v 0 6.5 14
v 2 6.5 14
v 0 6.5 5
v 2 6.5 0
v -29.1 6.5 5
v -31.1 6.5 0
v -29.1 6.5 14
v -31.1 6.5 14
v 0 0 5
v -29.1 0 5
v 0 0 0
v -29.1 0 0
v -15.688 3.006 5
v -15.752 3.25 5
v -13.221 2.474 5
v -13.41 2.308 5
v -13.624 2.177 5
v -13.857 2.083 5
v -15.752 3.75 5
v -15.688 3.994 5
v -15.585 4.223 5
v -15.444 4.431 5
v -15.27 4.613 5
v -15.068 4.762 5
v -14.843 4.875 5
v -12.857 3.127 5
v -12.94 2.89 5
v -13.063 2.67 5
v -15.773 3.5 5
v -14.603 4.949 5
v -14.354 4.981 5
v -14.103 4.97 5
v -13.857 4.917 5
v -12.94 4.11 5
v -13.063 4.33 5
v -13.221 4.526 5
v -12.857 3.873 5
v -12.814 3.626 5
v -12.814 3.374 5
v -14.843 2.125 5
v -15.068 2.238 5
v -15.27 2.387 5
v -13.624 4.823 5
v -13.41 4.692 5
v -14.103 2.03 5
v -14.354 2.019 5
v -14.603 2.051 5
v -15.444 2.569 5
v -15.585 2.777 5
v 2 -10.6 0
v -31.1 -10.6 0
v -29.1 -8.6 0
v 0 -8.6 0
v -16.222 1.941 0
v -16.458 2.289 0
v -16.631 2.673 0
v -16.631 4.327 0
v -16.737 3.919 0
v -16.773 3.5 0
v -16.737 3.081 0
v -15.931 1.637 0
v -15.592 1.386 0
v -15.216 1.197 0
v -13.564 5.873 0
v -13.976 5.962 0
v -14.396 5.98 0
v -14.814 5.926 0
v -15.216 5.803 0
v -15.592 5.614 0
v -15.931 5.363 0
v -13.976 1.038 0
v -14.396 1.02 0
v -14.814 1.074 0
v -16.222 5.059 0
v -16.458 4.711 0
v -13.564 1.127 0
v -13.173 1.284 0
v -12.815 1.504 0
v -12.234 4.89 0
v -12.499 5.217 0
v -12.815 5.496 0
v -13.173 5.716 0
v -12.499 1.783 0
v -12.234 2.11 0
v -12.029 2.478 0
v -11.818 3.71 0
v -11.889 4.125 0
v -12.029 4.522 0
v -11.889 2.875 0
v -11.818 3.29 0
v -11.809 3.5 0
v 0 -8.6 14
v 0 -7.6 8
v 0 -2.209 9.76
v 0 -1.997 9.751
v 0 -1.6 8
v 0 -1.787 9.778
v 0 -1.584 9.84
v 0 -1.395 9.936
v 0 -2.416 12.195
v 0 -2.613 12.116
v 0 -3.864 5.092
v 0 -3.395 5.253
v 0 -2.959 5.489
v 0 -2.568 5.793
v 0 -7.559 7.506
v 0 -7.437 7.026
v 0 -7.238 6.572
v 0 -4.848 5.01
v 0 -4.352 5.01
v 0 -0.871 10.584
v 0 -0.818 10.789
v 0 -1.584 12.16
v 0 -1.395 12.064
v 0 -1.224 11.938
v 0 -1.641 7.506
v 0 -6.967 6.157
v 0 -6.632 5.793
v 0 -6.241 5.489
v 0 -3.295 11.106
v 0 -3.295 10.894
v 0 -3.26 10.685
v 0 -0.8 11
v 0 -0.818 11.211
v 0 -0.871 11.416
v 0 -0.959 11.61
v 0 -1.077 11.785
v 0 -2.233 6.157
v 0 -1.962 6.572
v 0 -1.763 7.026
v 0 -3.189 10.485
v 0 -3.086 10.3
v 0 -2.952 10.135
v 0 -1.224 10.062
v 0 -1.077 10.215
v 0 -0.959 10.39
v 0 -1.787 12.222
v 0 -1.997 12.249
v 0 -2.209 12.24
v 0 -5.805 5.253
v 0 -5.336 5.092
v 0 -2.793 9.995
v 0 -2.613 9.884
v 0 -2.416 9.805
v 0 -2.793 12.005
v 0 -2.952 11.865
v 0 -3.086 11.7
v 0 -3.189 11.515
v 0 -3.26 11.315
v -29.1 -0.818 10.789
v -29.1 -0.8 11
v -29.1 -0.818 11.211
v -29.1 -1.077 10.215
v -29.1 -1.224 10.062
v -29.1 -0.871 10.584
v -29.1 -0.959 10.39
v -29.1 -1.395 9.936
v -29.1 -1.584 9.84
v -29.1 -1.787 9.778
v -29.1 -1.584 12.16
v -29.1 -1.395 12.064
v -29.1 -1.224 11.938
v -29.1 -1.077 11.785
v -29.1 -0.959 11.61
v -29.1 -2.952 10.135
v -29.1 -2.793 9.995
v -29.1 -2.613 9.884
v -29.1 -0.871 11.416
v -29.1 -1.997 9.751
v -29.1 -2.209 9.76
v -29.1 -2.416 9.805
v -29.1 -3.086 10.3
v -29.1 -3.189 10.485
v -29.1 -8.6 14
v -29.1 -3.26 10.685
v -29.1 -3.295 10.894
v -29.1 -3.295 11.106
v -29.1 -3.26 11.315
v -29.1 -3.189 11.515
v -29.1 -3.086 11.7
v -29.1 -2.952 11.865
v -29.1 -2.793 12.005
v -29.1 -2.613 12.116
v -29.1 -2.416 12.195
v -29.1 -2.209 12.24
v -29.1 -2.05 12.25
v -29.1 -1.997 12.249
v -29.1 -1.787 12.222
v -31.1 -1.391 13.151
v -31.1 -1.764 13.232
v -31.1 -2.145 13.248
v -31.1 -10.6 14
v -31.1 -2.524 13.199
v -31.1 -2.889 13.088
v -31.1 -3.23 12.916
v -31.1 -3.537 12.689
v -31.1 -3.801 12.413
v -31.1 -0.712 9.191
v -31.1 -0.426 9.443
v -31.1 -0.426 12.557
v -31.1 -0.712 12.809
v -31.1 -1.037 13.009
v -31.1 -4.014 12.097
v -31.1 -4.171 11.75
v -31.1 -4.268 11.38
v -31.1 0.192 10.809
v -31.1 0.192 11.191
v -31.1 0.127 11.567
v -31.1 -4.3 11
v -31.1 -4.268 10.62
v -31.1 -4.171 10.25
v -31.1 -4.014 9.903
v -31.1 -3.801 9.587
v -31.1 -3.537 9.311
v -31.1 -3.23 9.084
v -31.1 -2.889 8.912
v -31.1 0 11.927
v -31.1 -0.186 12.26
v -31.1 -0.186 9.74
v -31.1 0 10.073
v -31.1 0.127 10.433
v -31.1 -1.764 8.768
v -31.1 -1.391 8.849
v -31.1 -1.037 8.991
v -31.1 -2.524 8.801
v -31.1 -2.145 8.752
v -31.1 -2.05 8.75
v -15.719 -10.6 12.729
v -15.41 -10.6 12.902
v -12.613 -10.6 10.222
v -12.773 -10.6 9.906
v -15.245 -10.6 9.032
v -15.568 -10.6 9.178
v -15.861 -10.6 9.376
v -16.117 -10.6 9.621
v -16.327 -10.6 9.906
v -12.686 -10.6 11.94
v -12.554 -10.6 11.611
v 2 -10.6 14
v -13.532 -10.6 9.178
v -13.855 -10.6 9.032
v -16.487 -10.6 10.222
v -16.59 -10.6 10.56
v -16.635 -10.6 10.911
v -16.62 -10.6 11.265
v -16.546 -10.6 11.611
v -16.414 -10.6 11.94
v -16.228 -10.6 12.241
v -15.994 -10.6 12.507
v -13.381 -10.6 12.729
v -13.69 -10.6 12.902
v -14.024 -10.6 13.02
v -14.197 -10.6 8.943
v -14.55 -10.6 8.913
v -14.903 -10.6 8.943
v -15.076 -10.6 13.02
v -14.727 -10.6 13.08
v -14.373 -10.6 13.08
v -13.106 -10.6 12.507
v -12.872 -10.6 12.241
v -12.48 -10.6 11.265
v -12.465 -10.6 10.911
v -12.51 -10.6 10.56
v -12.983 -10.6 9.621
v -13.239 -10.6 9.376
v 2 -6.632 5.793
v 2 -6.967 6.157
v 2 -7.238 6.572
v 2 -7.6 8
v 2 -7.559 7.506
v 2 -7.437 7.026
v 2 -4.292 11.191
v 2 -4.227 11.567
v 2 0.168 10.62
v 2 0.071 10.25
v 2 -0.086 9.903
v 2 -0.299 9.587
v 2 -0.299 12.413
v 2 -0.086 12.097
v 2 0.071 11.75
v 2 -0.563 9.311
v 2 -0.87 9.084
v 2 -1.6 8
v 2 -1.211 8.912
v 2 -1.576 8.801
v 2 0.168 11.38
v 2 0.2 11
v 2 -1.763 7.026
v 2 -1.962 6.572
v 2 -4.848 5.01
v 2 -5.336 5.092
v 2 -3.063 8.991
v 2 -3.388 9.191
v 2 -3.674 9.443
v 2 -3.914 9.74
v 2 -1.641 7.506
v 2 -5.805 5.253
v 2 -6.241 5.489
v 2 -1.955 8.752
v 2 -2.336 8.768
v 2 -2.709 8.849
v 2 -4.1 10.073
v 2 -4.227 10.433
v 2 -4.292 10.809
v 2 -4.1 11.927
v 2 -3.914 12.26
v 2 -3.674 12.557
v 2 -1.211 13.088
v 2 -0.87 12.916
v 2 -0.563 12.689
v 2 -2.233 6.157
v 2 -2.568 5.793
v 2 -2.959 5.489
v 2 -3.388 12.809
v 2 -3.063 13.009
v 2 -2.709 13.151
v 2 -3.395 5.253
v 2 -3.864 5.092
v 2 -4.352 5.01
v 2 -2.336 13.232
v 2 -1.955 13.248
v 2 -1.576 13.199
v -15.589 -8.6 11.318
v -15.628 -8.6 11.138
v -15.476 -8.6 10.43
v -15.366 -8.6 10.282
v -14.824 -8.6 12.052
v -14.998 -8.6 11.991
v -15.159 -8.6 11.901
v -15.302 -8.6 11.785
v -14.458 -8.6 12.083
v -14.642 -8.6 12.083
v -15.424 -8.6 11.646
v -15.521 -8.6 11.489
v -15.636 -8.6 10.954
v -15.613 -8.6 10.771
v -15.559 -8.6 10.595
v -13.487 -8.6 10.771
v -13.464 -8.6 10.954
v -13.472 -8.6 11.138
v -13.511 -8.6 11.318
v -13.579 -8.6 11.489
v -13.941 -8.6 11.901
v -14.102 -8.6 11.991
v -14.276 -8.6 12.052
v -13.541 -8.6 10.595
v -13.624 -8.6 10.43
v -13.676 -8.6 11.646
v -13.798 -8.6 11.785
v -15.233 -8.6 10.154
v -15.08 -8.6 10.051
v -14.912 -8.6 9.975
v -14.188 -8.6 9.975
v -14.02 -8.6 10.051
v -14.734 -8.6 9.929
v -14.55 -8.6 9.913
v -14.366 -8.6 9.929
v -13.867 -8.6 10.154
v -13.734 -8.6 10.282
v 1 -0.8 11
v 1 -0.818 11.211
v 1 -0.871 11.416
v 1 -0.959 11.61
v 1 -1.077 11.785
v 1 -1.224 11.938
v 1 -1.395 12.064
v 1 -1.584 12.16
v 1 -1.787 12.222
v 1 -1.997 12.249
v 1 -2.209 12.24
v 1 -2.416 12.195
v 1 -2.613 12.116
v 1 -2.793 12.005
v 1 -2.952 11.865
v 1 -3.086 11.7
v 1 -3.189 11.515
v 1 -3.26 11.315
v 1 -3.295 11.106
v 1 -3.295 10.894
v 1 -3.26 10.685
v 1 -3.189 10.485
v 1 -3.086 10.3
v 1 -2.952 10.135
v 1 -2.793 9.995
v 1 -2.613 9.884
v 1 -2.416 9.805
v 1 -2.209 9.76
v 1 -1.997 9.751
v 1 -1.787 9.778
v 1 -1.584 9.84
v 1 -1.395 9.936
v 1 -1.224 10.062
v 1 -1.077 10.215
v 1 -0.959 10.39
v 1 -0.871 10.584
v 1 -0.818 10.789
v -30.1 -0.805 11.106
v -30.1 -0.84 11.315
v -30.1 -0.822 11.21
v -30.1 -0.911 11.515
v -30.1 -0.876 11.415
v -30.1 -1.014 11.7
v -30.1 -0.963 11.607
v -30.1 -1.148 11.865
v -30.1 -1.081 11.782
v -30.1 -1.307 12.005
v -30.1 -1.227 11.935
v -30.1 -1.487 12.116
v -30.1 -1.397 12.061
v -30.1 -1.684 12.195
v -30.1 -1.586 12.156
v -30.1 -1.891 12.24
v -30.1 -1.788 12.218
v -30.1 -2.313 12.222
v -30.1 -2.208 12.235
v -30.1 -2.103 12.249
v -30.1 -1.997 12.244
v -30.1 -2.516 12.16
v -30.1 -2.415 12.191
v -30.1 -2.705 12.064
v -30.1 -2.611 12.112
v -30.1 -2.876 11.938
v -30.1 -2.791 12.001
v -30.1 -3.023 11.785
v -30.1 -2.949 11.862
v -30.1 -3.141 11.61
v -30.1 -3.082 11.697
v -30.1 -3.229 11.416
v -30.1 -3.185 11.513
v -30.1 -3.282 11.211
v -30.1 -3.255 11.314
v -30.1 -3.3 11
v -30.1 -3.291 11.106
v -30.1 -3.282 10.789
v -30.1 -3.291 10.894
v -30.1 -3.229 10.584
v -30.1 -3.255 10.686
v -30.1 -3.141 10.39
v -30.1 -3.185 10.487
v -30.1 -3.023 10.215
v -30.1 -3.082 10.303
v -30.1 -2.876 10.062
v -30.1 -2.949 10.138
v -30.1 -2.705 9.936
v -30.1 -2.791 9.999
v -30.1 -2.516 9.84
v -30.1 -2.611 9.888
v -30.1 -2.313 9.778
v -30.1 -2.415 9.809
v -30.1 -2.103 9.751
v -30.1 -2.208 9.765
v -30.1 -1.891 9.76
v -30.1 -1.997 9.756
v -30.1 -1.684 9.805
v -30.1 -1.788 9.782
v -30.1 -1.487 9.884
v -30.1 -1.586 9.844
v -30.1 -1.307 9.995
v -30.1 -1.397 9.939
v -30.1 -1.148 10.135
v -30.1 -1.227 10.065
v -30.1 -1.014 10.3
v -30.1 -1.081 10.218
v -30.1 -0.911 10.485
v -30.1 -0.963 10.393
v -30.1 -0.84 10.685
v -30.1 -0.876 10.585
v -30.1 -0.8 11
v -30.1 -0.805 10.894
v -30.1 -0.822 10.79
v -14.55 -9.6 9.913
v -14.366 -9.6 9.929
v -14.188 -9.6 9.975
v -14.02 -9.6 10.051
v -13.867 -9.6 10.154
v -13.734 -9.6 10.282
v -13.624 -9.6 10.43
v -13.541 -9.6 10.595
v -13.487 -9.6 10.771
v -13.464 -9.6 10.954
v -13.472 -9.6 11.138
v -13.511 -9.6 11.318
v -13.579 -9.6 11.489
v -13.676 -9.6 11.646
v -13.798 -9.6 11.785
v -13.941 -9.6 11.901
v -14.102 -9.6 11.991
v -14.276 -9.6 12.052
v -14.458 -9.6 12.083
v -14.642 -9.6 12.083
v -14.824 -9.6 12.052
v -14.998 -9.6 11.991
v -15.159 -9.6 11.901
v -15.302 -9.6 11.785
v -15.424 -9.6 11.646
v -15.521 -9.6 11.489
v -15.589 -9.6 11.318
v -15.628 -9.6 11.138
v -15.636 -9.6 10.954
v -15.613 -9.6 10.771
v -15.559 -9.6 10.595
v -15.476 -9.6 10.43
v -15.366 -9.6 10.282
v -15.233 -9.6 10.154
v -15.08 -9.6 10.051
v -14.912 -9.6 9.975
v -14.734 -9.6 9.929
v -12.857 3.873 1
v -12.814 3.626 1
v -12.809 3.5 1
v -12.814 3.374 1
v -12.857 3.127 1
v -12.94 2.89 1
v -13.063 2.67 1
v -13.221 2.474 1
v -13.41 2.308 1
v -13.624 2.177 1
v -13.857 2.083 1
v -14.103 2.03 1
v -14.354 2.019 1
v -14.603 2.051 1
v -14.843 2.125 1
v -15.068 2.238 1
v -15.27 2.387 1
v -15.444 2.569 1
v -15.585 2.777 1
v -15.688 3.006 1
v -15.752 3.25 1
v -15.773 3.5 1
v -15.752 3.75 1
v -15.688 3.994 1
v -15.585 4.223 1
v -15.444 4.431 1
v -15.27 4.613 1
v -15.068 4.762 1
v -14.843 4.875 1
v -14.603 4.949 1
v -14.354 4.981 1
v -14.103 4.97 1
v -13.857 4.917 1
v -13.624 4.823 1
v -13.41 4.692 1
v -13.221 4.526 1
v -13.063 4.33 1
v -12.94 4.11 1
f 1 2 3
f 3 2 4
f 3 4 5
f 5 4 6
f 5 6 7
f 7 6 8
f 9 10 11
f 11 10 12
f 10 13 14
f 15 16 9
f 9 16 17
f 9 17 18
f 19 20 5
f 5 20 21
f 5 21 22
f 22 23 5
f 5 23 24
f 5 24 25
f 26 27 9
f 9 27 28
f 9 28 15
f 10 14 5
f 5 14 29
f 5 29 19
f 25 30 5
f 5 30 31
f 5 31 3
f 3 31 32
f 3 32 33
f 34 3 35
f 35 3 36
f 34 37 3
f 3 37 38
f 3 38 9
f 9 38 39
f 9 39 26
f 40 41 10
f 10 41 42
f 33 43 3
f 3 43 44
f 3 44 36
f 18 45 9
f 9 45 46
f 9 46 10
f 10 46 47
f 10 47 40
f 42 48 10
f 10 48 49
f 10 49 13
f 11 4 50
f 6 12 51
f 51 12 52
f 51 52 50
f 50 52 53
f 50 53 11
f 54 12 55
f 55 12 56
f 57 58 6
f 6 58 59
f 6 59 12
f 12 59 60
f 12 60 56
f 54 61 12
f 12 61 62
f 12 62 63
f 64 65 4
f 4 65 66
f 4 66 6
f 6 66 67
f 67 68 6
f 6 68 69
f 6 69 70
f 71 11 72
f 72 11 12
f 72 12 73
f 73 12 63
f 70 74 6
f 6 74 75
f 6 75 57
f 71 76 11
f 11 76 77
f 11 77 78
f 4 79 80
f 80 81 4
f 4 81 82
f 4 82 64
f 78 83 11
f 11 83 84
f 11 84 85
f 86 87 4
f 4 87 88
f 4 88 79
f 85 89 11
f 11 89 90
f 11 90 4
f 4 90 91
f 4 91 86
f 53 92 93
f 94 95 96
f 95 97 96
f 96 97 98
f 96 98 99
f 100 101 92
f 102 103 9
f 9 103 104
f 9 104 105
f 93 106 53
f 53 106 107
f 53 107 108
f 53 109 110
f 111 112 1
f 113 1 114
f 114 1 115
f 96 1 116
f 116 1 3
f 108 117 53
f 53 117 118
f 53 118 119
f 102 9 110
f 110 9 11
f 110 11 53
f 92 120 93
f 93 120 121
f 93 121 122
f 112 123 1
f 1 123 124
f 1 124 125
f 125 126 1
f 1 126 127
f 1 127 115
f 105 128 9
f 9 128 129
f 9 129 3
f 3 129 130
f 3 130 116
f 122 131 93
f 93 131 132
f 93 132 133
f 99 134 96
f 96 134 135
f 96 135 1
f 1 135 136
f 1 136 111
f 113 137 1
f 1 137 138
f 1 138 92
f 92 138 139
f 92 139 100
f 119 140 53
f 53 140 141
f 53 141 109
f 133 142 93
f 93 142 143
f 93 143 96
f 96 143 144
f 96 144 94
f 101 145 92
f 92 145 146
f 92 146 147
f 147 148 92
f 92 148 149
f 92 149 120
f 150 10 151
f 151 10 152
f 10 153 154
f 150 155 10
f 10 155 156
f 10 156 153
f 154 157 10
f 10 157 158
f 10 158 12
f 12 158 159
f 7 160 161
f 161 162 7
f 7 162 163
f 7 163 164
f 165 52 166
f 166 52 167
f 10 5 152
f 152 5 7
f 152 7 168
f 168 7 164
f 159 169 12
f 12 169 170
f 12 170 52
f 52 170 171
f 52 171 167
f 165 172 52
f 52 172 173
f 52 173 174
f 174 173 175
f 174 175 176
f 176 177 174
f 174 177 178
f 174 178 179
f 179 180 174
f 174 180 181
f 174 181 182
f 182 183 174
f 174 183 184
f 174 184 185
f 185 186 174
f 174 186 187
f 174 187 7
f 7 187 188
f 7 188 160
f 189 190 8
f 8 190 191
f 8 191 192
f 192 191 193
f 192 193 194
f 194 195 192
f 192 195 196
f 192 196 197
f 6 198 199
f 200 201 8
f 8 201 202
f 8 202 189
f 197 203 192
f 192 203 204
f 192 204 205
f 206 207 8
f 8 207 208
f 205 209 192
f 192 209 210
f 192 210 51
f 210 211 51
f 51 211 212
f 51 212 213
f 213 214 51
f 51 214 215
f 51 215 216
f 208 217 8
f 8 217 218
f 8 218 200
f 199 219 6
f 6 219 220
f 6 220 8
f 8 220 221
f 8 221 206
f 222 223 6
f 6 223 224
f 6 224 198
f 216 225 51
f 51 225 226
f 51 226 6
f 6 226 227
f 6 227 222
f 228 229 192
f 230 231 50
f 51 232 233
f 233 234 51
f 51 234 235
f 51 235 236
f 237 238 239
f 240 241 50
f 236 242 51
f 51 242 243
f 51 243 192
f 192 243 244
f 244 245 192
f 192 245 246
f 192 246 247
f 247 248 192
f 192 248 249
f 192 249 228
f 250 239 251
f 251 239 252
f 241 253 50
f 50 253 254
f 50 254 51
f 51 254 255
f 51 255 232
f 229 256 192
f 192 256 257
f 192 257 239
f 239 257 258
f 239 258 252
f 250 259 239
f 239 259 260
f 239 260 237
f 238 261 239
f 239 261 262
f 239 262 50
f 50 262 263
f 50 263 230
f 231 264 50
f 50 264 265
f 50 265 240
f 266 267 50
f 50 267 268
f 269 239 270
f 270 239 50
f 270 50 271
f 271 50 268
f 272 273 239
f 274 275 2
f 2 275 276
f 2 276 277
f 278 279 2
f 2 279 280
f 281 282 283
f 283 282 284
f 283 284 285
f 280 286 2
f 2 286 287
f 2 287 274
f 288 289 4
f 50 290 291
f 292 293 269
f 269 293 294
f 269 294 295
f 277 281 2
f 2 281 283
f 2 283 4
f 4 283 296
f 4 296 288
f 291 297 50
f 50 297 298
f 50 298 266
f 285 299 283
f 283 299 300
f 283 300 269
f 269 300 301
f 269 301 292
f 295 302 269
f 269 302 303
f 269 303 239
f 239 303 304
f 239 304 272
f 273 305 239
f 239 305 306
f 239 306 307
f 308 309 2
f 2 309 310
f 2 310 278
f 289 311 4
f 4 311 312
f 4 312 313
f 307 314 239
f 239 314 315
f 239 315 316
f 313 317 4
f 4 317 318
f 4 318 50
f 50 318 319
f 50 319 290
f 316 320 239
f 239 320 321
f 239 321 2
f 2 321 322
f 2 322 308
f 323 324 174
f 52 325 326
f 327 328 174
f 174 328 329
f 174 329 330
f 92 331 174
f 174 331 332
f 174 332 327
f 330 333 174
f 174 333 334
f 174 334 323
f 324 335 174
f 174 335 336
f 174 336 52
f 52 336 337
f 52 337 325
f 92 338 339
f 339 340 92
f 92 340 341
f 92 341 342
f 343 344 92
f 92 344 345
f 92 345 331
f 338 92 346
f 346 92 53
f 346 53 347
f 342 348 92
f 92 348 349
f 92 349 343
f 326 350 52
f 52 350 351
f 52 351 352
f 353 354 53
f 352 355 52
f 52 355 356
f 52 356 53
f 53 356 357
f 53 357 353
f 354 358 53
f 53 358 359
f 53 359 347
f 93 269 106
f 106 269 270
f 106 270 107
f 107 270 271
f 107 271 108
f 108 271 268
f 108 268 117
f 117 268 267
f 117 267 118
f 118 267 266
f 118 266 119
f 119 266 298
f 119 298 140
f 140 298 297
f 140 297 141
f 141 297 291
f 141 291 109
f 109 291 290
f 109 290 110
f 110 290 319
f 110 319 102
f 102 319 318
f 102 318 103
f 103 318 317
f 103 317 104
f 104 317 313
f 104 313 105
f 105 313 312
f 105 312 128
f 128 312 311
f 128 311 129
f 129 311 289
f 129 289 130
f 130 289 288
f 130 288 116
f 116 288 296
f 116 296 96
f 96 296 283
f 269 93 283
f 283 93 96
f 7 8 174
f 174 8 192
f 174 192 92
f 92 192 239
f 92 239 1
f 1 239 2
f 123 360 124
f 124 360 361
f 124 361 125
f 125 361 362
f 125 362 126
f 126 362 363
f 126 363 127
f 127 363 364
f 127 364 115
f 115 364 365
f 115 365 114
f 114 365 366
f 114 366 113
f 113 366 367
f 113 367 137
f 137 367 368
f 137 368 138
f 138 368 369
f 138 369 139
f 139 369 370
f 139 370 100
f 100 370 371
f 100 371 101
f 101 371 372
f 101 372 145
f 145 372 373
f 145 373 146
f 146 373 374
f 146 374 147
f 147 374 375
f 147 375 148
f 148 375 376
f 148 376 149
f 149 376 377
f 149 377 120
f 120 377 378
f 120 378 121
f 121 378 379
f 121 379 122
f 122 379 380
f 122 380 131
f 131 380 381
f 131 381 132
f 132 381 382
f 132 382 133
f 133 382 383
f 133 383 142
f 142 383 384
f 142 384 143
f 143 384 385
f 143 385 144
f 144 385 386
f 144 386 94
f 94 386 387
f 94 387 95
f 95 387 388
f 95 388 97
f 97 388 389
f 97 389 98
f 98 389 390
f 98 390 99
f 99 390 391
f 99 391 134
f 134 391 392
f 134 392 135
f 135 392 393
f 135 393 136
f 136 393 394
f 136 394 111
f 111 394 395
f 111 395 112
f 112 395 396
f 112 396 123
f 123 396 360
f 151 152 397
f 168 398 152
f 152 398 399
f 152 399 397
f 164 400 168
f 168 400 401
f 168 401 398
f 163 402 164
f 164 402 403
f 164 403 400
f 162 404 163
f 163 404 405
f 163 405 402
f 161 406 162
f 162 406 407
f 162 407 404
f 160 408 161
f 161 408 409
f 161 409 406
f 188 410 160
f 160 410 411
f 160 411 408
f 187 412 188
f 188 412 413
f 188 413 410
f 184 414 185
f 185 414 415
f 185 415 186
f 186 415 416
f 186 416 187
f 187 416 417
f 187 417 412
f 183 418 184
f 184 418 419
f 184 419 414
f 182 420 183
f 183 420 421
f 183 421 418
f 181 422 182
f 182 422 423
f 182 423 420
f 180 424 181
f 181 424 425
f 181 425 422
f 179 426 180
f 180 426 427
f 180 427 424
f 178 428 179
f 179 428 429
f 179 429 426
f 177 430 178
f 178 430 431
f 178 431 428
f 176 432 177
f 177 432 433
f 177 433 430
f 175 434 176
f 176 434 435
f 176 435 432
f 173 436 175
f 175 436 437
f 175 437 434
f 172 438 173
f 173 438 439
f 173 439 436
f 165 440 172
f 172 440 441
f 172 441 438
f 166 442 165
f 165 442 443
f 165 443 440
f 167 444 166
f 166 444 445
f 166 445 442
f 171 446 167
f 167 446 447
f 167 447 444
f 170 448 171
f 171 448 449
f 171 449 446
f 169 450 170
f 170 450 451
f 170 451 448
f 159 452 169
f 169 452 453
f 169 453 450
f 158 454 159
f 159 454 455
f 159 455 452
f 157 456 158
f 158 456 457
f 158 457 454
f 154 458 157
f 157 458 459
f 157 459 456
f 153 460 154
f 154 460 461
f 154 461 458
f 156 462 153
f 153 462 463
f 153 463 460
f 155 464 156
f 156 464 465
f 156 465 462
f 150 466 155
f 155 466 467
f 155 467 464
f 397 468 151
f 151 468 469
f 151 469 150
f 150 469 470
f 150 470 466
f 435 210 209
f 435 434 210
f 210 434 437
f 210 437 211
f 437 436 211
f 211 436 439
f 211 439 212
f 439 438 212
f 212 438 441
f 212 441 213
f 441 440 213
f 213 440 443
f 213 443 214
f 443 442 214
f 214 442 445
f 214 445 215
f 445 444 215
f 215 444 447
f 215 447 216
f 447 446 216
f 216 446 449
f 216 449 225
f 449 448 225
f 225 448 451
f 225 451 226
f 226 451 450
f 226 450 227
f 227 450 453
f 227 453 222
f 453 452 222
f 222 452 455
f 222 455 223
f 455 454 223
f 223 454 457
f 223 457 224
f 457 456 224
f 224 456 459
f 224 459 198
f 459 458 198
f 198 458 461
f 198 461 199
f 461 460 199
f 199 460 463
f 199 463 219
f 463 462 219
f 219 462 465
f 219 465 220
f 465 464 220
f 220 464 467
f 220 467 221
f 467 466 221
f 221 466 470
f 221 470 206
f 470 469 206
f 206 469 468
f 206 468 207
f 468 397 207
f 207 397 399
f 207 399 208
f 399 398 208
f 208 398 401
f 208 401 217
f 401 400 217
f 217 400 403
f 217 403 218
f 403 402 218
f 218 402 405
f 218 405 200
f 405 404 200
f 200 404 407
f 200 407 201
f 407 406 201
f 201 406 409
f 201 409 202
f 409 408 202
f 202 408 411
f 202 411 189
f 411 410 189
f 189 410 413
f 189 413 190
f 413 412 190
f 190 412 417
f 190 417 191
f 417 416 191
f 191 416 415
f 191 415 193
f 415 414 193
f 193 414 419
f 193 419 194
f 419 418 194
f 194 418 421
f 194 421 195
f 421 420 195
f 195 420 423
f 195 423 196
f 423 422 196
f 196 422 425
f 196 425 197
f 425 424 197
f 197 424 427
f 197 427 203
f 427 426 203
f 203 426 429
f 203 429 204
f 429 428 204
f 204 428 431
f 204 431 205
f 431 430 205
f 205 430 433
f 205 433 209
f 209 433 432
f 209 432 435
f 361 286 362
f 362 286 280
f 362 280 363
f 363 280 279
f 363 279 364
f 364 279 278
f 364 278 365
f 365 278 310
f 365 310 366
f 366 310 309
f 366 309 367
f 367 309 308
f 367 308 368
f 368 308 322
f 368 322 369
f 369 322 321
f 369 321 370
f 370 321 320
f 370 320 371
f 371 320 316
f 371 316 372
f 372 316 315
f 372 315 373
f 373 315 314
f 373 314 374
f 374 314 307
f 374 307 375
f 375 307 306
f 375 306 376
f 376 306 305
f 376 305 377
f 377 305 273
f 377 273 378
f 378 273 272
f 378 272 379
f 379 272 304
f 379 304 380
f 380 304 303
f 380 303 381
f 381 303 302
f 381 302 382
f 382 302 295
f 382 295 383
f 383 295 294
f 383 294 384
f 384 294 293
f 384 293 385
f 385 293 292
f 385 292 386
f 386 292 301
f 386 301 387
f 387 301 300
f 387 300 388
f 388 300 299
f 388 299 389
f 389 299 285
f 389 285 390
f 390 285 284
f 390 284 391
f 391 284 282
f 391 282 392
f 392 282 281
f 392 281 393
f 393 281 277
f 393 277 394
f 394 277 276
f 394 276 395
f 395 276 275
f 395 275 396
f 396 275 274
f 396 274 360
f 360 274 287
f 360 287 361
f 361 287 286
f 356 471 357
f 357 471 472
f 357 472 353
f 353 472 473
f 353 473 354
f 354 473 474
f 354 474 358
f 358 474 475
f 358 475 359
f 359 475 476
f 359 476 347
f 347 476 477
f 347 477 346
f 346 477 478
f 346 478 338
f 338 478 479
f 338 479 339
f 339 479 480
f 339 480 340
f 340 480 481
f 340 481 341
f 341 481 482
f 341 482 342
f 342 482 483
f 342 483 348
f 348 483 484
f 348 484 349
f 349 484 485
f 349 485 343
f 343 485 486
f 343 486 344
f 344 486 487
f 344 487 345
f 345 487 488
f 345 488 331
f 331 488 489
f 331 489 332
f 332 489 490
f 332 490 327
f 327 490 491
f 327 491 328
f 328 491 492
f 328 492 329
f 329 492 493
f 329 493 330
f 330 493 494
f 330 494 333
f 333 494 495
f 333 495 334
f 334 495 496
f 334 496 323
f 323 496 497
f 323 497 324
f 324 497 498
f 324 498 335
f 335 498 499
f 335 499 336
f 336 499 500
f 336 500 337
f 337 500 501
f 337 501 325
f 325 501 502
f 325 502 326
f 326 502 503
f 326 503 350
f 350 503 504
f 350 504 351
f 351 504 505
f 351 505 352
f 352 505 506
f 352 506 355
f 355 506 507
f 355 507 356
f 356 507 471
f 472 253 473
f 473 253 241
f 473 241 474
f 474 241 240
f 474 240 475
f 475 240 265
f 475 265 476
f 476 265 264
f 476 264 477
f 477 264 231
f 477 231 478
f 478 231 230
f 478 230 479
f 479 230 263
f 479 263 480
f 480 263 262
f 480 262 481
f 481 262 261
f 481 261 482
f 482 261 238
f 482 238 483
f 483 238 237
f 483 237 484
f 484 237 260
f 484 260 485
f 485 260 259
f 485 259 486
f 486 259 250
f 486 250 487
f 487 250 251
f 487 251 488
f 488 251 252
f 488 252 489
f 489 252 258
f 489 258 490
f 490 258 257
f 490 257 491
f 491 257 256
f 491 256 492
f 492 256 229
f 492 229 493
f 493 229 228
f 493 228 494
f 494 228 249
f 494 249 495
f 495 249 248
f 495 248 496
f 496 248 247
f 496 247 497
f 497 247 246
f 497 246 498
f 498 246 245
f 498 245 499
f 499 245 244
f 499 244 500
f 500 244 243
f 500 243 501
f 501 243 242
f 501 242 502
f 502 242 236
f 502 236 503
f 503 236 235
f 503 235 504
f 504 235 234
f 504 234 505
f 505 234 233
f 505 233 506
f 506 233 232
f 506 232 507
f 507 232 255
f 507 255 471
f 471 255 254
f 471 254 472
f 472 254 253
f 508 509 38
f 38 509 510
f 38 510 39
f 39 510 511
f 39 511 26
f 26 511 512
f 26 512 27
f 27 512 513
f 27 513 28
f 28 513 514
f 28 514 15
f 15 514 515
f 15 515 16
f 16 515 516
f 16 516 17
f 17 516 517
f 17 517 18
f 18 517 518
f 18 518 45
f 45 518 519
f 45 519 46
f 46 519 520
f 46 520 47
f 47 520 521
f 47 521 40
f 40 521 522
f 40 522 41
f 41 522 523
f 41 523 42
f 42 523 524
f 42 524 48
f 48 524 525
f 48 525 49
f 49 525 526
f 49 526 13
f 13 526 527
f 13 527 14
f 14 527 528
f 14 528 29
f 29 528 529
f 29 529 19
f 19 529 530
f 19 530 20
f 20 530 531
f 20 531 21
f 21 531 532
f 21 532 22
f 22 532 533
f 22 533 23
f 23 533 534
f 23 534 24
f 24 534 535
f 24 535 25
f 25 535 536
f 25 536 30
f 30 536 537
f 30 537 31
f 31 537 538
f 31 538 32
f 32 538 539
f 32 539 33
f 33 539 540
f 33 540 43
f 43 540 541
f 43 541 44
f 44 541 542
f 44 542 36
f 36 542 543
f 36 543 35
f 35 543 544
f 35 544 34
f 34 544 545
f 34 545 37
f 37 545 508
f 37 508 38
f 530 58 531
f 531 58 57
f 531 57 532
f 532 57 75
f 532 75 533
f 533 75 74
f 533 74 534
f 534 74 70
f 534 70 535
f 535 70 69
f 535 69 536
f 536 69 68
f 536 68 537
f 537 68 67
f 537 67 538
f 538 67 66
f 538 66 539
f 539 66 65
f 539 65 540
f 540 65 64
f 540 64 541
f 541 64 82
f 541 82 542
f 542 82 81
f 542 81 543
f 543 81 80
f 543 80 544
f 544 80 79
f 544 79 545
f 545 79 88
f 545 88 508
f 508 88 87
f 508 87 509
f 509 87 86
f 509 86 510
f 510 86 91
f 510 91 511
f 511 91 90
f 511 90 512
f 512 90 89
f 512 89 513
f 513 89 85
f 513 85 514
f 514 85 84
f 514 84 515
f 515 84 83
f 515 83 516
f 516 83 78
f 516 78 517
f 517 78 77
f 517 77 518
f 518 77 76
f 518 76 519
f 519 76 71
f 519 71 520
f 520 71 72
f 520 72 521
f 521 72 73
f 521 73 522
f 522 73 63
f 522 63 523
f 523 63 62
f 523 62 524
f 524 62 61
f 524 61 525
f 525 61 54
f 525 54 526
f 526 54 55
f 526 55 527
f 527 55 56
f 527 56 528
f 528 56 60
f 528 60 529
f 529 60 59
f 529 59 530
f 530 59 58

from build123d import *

# Parameters (mm, degrees)
SKETCH_1_W             = 29.1
SKETCH_1_H             = 6.5
EXTRUDE_1_DEPTH        = 5
EXTRUDE_2_DEPTH        = 8
SKETCH_3_R             = 3
CUT_EXTRUDE_1118_DEPTH = 3
EXTRUDE_1407_DEPTH     = 6
SKETCH_5_R             = 1.25
CUT_EXTRUDE_2_DEPTH    = 38.469587668
CHAMFER_1_SIZE         = 1
SKETCH_6_R             = 1.087134162
CUT_EXTRUDE_3_DEPTH    = 5
CHAMFER_2_SIZE         = 1
SKETCH_7_R             = 1.482090692
CUT_EXTRUDE_4_DEPTH    = 5
CHAMFER_3_SIZE         = 1


with BuildPart() as part:
    # Эскиз1 → Бобышка-Вытянуть1 (new body)
    with BuildSketch(Plane.XY):
        with Locations((-14.55, 3.25)):
            Rectangle(SKETCH_1_W, SKETCH_1_H)
    extrude(amount=EXTRUDE_1_DEPTH)

    # Эскиз2 → Бобышка-Вытянуть2 (add)
    with BuildSketch(Plane(origin=(0, 0, 0), x_dir=(-1, 0, 0), z_dir=(0, 0, -1))):
        Polygon((0, -8.6), (-2, -8.6), (-2, -10.6), (31.1, -10.6), (31.1, -8.6), (29.1, -8.6), align=None)
        Polygon((0, 0), (0, 6.5), (-2, 6.5), (-2, -8.6), (0, -8.6), align=None)
        Polygon((29.1, 0), (29.1, -8.6), (31.1, -8.6), (31.1, 6.5), (29.1, 6.5), align=None)
    extrude(amount=-EXTRUDE_2_DEPTH)

    # Эскиз3 → Cut-Extrude 1118 (cut)
    with BuildSketch(Plane(origin=(2, 0, 0), x_dir=(0, 0, -1), z_dir=(1, 0, 0))):
        with Locations((-8, -4.6)):
            Circle(SKETCH_3_R)
    extrude(amount=-CUT_EXTRUDE_1118_DEPTH, mode=Mode.SUBTRACT)

    # Эскиз4 → Extrude 1407 (add)
    with BuildSketch(Plane.XY.offset(8)):
        Polygon((2, 6.5), (2, -10.6), (-31.1, -10.6), (-31.1, 6.5), (-29.1, 6.5), (-29.1, -8.6), (0, -8.6), (0, 6.5), align=None)
    extrude(amount=EXTRUDE_1407_DEPTH)

    # Эскиз5 → Вырез-Вытянуть2 (cut, through all)
    with BuildSketch(Plane(origin=(2, 0, 0), x_dir=(0, 0, -1), z_dir=(1, 0, 0))):
        with Locations(Location((-11, -2.05, 0), (0, 0, 90))):
            Circle(SKETCH_5_R)
    extrude(amount=-CUT_EXTRUDE_2_DEPTH, mode=Mode.SUBTRACT)

    # Фаска1
    chamfer_1_edges = [part.edges().sort_by_distance(p)[0] for p in [
        (-31.1, -3.3, 11),
        (2, -3.3, 11),
    ]]
    chamfer(chamfer_1_edges, length=CHAMFER_1_SIZE)

    # Эскиз6 → Вырез-Вытянуть3 (cut)
    with BuildSketch(Plane(origin=(0, -10.6, 0), x_dir=(-1, 0, 0), z_dir=(0, -1, 0))):
        with Locations(Location((14.55, -11, 0), (0, 0, 90))):
            Circle(SKETCH_6_R)
    extrude(amount=-CUT_EXTRUDE_3_DEPTH, mode=Mode.SUBTRACT)

    # Фаска2
    chamfer_2_edges = [part.edges().sort_by_distance(p)[0] for p in [
        (-14.55, -10.6, 12.087134162),
    ]]
    chamfer(chamfer_2_edges, length=CHAMFER_2_SIZE)

    # Эскиз7 → Вырез-Вытянуть4 (cut)
    with BuildSketch(Plane(origin=(0, 0, 0), x_dir=(-1, 0, 0), z_dir=(0, 0, -1))):
        with Locations((14.290801776, 3.5)):
            Circle(SKETCH_7_R)
    extrude(amount=-CUT_EXTRUDE_4_DEPTH, mode=Mode.SUBTRACT)

    # Фаска3
    chamfer_3_edges = [part.edges().sort_by_distance(p)[0] for p in [
        (-12.808711084, 3.5, 0),
    ]]
    chamfer(chamfer_3_edges, length=CHAMFER_3_SIZE)


solid = part.part
